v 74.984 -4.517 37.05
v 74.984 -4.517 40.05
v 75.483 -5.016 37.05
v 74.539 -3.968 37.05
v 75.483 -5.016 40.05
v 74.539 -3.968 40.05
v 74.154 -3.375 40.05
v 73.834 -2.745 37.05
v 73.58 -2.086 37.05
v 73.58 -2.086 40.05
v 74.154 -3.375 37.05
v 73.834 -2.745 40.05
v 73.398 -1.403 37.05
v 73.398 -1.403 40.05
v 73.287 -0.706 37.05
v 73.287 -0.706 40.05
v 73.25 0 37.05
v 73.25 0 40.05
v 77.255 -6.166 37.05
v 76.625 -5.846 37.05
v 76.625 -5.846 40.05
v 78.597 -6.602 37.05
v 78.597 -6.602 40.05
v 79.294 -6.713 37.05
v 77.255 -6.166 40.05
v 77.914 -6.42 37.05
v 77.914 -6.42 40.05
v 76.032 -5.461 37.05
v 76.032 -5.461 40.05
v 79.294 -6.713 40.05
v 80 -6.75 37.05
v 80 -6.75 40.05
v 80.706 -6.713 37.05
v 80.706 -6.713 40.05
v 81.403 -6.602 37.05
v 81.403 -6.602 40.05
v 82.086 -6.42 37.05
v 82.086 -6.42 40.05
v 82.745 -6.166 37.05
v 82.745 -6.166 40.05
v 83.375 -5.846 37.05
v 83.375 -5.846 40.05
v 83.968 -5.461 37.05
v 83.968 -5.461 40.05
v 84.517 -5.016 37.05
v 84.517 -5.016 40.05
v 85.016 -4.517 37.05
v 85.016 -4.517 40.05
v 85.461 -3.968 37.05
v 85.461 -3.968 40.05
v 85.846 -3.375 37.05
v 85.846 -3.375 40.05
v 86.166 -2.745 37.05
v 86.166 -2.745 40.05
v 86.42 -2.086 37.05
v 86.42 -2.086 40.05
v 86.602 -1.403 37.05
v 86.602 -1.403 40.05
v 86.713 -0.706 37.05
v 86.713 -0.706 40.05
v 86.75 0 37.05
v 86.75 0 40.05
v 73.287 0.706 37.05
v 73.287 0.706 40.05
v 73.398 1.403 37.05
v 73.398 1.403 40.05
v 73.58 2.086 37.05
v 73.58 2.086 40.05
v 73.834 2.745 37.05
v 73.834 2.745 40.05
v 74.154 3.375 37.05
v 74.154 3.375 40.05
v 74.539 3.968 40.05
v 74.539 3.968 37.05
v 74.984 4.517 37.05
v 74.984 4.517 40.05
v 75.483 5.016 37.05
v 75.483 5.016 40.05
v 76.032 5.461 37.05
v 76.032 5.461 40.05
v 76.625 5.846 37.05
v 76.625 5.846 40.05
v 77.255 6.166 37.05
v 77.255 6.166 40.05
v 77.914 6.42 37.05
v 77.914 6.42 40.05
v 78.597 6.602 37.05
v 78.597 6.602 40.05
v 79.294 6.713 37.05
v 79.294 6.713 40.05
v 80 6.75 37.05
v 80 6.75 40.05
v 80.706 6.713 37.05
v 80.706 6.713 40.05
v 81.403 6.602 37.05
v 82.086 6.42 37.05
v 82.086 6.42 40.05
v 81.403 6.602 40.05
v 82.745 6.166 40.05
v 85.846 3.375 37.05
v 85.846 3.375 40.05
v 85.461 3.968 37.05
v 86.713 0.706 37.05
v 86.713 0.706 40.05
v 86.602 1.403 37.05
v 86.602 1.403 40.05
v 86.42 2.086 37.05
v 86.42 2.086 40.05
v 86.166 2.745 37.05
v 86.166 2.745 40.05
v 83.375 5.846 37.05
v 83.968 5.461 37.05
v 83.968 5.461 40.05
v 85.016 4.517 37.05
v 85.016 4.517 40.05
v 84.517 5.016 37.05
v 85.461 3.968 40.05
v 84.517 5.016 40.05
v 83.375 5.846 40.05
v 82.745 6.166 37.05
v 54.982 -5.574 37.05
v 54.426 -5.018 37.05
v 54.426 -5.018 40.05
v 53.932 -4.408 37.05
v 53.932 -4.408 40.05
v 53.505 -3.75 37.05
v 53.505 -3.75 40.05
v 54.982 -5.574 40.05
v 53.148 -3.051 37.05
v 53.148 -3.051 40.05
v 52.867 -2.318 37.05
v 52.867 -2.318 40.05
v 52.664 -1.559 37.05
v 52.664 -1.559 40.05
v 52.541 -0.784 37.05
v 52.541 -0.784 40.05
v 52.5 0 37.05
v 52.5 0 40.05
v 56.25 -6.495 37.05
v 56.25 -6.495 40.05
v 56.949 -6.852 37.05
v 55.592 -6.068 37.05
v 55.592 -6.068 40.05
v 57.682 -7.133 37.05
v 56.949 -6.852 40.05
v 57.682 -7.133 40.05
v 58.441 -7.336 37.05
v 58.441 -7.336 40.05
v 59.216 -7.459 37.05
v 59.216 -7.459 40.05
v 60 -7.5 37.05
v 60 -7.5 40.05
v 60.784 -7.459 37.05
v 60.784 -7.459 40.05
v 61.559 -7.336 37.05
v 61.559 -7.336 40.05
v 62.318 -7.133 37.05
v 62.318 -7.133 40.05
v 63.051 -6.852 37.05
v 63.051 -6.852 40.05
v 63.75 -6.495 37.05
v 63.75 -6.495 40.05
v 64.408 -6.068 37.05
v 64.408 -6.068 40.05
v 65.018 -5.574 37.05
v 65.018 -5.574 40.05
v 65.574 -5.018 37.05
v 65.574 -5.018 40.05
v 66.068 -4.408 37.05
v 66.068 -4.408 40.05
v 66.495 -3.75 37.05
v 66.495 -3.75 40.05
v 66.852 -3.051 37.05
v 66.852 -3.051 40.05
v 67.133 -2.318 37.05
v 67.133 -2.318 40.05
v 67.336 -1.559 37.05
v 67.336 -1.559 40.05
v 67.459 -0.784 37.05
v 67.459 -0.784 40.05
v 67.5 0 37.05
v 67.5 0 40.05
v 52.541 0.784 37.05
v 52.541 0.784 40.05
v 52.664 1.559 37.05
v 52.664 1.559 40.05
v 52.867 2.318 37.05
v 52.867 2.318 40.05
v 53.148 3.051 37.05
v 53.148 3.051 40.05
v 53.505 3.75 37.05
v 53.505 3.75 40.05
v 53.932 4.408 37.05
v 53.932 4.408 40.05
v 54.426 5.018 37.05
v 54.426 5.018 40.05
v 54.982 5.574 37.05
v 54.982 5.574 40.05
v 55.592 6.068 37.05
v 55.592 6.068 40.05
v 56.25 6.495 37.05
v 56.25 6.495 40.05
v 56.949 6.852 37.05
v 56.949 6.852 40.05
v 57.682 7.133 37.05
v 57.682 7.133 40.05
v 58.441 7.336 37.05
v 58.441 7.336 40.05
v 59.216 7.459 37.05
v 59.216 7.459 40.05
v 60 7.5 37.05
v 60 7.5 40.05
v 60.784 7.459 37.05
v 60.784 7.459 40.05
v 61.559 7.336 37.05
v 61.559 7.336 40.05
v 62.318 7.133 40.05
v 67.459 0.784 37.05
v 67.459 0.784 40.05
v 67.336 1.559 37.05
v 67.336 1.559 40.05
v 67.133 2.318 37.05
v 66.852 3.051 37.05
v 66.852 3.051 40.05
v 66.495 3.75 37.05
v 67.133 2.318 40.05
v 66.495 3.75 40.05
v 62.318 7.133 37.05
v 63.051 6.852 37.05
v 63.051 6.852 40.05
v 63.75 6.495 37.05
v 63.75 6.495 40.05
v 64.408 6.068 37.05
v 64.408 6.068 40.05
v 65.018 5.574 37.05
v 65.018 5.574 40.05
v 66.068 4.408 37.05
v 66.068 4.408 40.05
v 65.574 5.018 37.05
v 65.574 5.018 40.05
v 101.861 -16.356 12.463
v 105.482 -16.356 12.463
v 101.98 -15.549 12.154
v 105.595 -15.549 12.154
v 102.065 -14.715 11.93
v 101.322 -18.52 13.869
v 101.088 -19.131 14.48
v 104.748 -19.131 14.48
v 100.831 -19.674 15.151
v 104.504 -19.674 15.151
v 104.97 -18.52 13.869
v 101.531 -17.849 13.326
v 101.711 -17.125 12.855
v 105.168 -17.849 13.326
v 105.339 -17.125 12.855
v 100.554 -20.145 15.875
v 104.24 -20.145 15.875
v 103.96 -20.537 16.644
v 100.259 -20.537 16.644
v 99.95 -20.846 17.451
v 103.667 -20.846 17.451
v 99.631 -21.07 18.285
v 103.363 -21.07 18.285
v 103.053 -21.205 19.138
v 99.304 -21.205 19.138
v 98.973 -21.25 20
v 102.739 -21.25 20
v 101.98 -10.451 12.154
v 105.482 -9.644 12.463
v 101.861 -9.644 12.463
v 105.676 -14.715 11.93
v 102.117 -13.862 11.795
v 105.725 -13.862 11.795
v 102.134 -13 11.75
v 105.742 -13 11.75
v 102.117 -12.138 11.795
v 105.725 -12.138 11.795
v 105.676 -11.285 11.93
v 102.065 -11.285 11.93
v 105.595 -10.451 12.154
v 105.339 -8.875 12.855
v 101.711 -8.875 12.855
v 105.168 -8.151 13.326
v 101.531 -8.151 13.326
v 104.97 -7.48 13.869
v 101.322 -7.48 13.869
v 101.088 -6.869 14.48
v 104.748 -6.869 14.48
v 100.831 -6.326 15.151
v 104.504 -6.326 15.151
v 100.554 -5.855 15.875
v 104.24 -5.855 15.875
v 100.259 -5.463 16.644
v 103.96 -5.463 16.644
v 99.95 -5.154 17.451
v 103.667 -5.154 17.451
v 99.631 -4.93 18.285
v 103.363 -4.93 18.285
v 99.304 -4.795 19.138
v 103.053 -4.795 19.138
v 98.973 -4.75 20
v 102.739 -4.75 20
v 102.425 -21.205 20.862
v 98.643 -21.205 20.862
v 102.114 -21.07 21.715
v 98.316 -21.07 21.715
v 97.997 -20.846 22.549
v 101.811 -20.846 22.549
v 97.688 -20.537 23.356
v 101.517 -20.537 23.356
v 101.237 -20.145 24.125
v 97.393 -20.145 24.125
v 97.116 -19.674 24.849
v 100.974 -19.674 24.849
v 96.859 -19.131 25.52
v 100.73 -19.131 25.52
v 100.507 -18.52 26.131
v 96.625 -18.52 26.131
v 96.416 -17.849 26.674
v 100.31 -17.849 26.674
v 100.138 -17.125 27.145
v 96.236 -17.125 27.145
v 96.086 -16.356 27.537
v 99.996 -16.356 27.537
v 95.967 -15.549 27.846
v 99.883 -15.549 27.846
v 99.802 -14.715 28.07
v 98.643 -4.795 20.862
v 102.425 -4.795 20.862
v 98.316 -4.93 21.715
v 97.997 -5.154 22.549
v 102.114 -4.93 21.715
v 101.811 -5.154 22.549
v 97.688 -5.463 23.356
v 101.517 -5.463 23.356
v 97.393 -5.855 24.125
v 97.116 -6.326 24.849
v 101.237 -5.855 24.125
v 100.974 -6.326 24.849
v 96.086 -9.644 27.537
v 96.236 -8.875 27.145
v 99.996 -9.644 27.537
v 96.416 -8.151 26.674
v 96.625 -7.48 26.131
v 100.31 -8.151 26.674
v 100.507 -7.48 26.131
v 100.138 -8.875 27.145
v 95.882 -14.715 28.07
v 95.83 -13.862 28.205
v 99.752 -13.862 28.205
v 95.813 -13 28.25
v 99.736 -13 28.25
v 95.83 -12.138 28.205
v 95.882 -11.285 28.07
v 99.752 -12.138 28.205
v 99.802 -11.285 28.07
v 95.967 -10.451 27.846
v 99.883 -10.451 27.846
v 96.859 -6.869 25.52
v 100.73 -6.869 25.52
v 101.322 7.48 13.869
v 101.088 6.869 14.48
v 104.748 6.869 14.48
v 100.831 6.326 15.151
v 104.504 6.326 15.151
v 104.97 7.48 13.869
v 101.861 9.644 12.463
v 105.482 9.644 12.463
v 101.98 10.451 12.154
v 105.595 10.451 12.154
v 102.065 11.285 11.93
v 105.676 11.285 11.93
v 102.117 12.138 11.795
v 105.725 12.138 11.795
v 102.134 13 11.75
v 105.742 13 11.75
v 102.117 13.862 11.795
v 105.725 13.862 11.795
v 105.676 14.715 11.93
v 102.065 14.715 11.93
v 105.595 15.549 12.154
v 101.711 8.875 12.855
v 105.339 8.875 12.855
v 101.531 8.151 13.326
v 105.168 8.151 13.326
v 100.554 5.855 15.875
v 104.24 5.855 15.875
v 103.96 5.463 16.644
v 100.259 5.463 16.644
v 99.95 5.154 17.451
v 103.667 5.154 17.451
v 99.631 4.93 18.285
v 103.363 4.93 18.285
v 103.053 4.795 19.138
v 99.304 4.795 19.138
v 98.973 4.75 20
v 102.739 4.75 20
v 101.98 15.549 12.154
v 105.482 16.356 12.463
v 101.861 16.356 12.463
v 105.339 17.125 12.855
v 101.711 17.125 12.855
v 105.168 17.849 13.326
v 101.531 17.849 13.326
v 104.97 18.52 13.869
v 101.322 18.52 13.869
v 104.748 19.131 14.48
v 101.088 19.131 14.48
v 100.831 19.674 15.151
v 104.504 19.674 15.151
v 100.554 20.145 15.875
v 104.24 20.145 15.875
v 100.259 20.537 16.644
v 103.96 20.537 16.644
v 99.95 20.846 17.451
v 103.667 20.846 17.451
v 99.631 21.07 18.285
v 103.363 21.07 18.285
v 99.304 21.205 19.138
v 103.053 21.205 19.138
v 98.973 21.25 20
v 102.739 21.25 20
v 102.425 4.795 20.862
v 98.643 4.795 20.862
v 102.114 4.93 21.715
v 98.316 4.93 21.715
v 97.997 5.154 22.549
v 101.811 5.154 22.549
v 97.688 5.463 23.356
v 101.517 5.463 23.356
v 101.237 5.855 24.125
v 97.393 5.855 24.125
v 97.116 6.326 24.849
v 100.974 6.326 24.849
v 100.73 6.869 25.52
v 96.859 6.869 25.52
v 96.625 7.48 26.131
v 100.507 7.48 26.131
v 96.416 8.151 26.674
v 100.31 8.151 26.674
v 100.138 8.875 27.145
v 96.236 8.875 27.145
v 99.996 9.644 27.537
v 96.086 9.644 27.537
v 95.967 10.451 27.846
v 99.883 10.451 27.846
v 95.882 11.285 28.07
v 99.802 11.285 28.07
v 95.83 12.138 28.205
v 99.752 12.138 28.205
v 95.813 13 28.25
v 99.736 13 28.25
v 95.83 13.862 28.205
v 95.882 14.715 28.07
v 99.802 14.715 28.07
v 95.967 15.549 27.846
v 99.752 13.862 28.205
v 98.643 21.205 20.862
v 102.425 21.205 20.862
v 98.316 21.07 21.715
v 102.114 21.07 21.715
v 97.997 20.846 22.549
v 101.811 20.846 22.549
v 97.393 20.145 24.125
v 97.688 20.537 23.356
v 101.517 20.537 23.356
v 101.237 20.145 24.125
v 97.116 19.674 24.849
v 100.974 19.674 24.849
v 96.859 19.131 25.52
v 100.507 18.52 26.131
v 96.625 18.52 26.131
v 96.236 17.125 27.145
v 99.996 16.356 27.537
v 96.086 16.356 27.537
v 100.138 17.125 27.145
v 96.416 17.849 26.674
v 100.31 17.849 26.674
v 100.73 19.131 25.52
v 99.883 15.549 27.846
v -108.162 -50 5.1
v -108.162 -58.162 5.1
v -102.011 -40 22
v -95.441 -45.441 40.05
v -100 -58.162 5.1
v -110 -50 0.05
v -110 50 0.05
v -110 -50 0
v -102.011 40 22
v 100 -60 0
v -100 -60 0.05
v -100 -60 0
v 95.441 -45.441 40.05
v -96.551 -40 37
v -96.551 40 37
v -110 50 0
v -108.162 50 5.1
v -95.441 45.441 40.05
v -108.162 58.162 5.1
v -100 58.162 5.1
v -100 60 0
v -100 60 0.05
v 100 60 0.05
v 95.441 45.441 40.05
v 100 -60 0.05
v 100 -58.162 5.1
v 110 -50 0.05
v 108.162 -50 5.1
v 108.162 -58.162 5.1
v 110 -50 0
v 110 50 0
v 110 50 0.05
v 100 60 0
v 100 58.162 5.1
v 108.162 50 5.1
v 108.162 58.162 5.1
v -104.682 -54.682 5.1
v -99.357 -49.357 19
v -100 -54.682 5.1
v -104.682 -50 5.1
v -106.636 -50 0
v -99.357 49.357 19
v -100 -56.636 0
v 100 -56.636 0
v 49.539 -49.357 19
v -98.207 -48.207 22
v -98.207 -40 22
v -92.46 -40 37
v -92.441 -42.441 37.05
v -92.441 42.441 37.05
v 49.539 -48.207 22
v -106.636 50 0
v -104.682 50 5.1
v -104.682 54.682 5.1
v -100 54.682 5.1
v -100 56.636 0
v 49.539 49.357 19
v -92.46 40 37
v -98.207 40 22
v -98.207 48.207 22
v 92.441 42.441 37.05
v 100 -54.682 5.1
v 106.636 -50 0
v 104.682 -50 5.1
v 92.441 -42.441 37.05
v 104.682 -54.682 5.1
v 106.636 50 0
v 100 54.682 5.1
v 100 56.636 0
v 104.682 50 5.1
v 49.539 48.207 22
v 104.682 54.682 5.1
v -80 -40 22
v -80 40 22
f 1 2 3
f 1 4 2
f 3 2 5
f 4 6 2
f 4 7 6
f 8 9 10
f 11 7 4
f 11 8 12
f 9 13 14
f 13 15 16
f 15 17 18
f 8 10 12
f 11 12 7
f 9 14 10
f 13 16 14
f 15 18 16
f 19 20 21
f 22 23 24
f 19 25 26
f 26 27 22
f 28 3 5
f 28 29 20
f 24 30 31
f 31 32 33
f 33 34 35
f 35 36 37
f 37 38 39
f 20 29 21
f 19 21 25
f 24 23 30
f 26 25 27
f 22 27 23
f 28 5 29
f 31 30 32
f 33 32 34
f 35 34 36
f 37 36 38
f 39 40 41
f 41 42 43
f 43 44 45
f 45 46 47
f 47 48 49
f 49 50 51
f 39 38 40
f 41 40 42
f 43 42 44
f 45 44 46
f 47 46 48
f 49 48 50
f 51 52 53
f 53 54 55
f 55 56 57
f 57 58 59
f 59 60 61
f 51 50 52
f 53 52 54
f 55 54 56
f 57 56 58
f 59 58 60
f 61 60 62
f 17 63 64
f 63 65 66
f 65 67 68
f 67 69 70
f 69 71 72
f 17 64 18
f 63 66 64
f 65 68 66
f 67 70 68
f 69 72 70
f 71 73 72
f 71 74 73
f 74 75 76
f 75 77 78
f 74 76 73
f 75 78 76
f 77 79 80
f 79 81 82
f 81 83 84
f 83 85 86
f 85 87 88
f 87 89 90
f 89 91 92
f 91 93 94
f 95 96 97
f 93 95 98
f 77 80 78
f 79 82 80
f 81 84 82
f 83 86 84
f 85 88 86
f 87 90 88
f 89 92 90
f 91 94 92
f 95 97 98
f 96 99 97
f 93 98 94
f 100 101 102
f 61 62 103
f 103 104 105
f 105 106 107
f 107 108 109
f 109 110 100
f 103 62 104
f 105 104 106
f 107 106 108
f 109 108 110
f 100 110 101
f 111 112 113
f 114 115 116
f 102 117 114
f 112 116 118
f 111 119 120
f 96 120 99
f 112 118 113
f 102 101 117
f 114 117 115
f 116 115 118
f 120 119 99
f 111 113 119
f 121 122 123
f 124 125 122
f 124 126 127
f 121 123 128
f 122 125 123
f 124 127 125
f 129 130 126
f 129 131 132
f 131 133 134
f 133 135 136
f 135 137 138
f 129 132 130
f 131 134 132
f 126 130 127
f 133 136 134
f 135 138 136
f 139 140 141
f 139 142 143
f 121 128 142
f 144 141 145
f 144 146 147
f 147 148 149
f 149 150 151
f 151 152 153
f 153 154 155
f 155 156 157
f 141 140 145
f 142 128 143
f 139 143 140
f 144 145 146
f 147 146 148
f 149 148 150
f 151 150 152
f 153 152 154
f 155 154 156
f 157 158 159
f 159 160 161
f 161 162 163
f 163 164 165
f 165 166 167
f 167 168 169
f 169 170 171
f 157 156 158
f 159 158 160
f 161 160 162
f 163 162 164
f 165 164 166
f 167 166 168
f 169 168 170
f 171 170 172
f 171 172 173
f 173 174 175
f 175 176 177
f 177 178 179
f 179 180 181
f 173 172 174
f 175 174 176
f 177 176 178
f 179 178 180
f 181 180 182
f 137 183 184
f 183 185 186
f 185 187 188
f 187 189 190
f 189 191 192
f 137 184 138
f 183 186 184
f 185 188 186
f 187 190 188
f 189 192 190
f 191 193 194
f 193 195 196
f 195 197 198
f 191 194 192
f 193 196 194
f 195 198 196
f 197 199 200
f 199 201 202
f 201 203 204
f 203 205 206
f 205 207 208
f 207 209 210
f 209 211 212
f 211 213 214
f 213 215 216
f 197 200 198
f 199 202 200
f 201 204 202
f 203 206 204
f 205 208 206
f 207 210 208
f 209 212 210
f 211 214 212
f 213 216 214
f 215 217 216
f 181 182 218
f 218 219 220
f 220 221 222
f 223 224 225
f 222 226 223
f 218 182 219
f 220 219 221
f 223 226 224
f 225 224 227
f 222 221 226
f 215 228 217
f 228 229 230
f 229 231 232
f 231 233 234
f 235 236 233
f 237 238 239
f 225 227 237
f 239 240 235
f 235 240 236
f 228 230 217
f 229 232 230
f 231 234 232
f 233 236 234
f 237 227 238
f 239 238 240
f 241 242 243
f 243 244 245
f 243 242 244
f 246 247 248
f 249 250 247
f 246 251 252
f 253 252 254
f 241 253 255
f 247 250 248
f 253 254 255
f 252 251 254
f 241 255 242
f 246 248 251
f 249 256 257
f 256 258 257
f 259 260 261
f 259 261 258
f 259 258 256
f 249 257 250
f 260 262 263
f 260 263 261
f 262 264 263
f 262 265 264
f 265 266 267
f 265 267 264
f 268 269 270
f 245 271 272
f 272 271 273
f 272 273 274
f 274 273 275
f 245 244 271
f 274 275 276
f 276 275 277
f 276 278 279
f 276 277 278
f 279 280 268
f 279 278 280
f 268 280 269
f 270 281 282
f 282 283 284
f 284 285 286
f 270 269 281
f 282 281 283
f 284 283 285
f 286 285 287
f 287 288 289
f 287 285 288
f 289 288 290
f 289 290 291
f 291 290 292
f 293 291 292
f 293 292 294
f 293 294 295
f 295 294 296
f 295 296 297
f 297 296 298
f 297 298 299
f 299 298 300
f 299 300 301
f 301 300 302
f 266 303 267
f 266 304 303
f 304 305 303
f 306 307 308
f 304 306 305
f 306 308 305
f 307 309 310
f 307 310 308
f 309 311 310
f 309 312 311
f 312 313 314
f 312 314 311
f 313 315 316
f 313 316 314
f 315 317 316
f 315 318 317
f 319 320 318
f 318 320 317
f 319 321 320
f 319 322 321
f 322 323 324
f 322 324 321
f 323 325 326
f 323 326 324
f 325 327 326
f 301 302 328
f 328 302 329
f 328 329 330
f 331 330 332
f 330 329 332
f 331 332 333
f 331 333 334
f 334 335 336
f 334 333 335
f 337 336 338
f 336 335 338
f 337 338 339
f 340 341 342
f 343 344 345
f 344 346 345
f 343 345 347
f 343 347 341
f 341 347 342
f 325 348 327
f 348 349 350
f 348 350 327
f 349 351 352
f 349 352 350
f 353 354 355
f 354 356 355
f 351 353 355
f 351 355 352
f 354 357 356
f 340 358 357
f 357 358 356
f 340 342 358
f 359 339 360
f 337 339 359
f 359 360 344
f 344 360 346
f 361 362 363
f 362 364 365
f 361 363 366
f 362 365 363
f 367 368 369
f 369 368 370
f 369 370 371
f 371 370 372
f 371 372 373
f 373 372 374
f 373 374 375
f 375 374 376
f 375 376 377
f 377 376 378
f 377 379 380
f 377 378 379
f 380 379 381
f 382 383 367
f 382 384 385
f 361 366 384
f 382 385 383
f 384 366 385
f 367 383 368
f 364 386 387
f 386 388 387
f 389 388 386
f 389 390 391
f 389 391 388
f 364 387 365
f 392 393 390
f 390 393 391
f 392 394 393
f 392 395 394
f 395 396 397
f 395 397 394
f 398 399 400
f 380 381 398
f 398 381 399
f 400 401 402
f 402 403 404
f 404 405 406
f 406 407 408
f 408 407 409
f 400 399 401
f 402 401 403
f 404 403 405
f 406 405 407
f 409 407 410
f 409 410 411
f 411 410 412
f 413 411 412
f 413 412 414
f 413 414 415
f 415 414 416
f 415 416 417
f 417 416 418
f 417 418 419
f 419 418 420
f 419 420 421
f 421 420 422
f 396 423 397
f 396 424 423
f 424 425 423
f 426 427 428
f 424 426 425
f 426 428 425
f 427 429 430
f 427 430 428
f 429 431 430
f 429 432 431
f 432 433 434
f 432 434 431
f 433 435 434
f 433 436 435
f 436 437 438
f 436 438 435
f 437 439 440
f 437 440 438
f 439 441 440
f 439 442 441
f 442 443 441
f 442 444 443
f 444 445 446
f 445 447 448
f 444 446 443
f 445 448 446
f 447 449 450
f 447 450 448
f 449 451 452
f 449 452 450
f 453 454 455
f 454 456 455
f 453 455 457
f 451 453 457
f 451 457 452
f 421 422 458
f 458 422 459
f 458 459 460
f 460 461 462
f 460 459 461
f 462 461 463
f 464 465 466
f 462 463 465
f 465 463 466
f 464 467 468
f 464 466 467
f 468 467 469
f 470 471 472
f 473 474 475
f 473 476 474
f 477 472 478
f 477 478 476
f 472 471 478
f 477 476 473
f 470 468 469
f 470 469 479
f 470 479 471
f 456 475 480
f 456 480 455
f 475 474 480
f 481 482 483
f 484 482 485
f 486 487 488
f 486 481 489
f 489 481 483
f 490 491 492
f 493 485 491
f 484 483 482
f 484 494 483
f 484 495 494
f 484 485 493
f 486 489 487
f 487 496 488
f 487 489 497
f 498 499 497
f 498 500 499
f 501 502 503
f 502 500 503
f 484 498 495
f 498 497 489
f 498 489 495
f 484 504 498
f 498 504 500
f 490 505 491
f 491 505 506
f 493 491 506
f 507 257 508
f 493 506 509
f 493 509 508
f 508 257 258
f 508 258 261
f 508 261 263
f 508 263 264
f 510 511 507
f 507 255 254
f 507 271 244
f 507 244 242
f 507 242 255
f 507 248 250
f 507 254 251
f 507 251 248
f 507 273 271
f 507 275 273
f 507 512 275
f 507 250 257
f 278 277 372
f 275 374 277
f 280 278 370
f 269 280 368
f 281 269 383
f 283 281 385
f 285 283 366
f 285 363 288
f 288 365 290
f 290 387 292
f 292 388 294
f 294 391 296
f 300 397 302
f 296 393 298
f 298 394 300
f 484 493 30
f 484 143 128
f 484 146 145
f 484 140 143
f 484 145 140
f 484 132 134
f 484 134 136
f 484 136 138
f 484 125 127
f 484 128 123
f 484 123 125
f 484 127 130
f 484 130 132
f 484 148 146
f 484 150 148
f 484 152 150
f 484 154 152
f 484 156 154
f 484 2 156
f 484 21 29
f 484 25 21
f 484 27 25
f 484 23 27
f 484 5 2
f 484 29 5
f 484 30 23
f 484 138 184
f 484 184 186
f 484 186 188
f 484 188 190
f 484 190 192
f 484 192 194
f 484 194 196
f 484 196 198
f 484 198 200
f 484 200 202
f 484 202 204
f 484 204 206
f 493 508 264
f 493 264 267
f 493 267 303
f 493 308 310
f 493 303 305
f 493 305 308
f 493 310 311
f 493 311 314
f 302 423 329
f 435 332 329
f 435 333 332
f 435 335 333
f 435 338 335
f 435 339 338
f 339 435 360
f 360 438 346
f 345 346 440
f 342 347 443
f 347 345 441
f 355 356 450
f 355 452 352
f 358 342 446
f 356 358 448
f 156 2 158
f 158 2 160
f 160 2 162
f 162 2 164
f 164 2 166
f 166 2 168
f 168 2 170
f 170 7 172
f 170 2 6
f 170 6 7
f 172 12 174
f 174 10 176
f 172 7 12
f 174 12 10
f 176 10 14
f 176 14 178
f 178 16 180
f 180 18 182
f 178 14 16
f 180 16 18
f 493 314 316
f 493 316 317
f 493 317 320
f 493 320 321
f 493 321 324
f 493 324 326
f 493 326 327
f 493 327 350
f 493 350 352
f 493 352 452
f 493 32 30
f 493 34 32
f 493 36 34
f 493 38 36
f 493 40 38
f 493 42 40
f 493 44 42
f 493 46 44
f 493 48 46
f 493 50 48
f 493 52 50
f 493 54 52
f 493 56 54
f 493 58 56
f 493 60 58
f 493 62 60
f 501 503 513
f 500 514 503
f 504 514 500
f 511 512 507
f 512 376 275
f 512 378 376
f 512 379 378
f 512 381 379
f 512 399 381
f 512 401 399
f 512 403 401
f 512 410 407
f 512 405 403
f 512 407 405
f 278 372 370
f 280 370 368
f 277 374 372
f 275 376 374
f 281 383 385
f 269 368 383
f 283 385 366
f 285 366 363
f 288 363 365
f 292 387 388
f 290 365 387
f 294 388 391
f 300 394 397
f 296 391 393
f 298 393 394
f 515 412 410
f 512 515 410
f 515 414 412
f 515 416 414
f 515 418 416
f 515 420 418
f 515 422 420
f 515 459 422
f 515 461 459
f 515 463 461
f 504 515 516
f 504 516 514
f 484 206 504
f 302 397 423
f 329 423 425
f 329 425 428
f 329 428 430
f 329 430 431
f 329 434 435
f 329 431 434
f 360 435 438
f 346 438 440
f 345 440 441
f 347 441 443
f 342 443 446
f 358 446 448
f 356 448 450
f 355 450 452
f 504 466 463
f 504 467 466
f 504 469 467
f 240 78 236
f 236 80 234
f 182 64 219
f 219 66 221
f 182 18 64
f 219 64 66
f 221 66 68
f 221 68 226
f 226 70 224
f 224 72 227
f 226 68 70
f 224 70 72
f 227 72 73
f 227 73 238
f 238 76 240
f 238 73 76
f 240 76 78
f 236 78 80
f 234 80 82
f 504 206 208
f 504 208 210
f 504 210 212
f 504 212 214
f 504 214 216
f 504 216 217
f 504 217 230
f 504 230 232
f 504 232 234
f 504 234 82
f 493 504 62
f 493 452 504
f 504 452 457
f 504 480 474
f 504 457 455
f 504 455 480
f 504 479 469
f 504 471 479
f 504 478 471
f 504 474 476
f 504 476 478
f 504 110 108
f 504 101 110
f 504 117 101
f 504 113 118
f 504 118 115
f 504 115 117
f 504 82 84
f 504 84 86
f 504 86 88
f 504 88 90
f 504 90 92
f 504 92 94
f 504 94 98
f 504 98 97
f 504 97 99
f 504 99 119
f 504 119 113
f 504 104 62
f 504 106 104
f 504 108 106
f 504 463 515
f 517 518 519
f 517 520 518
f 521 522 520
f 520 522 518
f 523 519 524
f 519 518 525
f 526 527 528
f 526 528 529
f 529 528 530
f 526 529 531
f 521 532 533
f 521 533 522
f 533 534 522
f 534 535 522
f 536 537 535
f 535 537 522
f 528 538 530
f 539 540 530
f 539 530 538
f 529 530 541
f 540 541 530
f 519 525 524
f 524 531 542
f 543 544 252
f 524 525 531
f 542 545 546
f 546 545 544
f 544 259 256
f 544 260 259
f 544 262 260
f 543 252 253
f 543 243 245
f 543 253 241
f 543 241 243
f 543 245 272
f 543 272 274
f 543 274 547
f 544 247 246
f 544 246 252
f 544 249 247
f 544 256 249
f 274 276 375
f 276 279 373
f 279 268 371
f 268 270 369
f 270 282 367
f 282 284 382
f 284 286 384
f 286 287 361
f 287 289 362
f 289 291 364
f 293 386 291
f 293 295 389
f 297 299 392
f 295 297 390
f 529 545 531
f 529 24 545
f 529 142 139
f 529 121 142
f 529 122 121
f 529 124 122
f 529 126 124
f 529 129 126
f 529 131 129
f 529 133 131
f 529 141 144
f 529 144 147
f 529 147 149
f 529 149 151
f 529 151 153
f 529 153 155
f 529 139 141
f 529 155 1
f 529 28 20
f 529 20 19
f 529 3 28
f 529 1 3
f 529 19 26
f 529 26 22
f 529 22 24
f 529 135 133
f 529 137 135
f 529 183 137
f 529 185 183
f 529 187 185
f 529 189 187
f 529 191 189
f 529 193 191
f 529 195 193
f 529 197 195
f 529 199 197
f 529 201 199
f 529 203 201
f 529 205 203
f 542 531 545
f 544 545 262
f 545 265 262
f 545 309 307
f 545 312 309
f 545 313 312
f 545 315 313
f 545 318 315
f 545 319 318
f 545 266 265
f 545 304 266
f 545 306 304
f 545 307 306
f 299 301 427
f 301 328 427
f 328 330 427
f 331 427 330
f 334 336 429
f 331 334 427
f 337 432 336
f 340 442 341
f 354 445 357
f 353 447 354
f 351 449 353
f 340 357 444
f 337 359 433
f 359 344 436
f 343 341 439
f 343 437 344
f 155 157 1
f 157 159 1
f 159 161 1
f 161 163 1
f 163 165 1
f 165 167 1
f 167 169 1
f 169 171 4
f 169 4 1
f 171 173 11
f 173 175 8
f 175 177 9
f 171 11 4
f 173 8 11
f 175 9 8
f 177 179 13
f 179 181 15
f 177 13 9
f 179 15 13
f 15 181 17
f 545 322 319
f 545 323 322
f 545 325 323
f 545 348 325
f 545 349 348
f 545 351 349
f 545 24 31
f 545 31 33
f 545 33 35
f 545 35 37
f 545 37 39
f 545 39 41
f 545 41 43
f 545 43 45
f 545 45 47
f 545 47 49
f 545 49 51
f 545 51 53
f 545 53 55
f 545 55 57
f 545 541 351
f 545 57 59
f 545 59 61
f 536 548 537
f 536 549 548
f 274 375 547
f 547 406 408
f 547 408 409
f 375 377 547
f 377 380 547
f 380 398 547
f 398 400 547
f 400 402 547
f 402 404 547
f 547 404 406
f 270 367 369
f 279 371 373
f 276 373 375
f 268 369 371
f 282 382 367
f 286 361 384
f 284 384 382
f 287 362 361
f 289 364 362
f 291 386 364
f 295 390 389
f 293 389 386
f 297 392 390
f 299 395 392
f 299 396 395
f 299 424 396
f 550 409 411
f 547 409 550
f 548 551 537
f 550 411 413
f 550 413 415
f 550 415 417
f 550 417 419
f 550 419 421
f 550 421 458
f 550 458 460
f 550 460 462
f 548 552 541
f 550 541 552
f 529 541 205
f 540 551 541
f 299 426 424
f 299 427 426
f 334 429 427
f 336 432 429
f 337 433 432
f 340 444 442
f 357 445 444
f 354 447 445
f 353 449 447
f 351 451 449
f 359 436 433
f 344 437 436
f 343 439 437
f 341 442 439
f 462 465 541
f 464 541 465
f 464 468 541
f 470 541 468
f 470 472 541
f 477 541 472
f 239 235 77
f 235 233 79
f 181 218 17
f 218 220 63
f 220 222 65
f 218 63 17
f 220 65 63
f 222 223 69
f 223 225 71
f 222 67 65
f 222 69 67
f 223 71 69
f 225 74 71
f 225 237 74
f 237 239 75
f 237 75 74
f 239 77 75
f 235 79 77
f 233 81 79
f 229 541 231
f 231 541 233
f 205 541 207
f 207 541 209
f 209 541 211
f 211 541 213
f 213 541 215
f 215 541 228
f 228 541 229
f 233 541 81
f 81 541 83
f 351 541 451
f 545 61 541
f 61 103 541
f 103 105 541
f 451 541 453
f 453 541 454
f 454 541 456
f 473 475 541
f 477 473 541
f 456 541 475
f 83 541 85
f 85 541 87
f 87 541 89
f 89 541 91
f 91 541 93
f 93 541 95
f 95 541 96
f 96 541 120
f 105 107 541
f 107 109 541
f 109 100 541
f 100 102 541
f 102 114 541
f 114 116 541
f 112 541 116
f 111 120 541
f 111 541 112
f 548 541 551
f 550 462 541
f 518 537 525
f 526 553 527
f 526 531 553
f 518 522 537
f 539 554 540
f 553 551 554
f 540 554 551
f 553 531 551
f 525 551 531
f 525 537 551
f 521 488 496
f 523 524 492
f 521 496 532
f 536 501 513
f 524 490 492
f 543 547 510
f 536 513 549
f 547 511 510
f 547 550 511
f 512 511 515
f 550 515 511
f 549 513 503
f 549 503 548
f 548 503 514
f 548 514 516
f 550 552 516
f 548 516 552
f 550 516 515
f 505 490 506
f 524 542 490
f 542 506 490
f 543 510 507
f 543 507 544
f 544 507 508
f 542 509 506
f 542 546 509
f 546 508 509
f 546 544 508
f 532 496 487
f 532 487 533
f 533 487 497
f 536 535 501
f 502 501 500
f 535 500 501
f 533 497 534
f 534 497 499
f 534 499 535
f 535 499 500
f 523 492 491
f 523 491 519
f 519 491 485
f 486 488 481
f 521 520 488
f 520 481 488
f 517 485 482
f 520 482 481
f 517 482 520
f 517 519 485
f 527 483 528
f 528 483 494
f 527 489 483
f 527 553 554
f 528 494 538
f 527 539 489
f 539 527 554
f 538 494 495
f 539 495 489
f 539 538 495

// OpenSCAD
// --- CABIN DIMENSIONS / РАЗМЕРЫ КАБИНЫ ---
cabin_length = 220;          // [мм] Length (front to back) / Длина
cabin_width = 120;           // [мм] Width (side to side) / Ширина
cabin_height = 40;           // [мм] Height / Высота
wall_thickness = 3;          // [мм] Wall thickness / Толщина стенок
taper_angle = 70;            // [градусы] Taper angle (narrowing to top) / Угол сужения кверху

// --- MOUNTING SOCKETS / МОНТАЖНЫЕ ВПАДИНЫ ---
socket_size = 10;            // [мм] Socket size (1x1 cm) / Размер впадины
socket_depth = 5;            // [мм] Socket depth (0.5 cm) / Глубина впадины

// --- BATTERY SHELF / ПОЛКА ДЛЯ БАТАРЕИ ---
shelf_thickness = 3;         // [мм] Shelf thickness / Толщина полки
shelf_distance_from_roof = 3; // [мм] Distance from roof to shelf definition / Отступ
shelf_drop_offset = 15;      // [mm] Extra drop used in your original code / Дополнительное смещение вниз
battery_cable_dia = 15;      // [мм] Battery cable hole / Отверстие для шнура батареи
rear_cutout_width = 80;      // [мм] Rear cutout width / Ширина выреза сзади
rear_cutout_height = 15;     // [мм] Rear cutout height / Высота выреза сзади

// --- DISTANCE SENSOR / ДАТЧИК РАССТОЯНИЯ ---
sensor_hole_dia = 16.5;      // [мм] Sensor hole diameter / Диаметр отверстия датчика
sensor_spacing = 26;         // [мм] Distance between sensor holes / Расстояние между отверстиями
sensor_height = 40;          // [мм] Height from bottom / Высота от низа

// --- ROOF CAMERA / КАМЕРА НА КРЫШЕ ---
camera_hole_dia = 13.5;      // [мм] Camera hole diameter / Диаметр отверстия камеры
camera_cable_dia = 15;       // [мм] Camera cable hole / Отверстие для шнура камеры
camera_position = 30;        // [мм] Distance from front / Расстояние от передней части
cable_offset = 20;           // [мм] Distance behind camera / Расстояние за камерой

// --- QUALITY / КАЧЕСТВО ---
$fn = 60;                    // Circle resolution / Разрешение окружностей

/* =====================================================================
 *                         MODULES / МОДУЛИ
 * =====================================================================
 */

// Main cabin body with 70° taper and CLOSED TOP (ROOF)
module cabin_body() {
    top_reduction = cabin_height / tan(taper_angle);
    top_length = cabin_length - 2 * top_reduction;
    top_width = cabin_width - 2 * top_reduction;
    
    hull() {
        translate([0, 0, 0])
            cube([cabin_length, cabin_width, 0.1], center = true);
        
        translate([0, 0, cabin_height])
            cube([top_length, top_width, 0.1], center = true);
    }
}

// Inner cavity (hollow interior)
module cabin_cavity() {
    top_reduction = cabin_height / tan(taper_angle);
    top_length = cabin_length - 2 * top_reduction - 2 * wall_thickness;
    top_width = cabin_width - 2 * top_reduction - 2 * wall_thickness;
    inner_length = cabin_length - 2 * wall_thickness;
    inner_width = cabin_width - 2 * wall_thickness;
    
    difference (){
    hull() {
        translate([0, 0, -1])
            cube([inner_length, inner_width, 0.1], center = true);
        
        translate([0, 0, cabin_height - wall_thickness])
            cube([top_length, top_width, 0.1], center = true);
    }
    battery_shelf();
    }
}

// Mounting socket
module mounting_socket() {
    translate([0, 0, socket_depth/2]) {
        cube([socket_size, socket_size, socket_depth + 0.2], center = true);
    }
}

// HORIZONTAL SHELF under roof for battery
module battery_shelf() {
    // FIXED: Calculate Z based on the extra drop so dimensions are correct
    actual_z_center = cabin_height - shelf_distance_from_roof - shelf_thickness/2 - shelf_drop_offset;
    
    // FIXED: Calculate width/length based on the ACTUAL height, not the roof height
    // This ensures the shelf touches the tapered walls
    reduction = actual_z_center / tan(taper_angle);
    shelf_length = cabin_length - 2 * reduction - 2 * wall_thickness-50;
    shelf_width = cabin_width - 2 * reduction - 2 * wall_thickness;
    
    translate([-25, 0, actual_z_center]) {
        
            cube([shelf_length, shelf_width, shelf_thickness], center = true);
            
           
        
    }
}

// Rear cutout for battery access
module rear_battery_cutout() {
    // FIXED: Align cutout with the lowered shelf position
    // Shelf Top Z = (cabin_height - shelf_distance_from_roof - shelf_drop_offset)
    shelf_top_z = cabin_height - shelf_distance_from_roof - shelf_drop_offset;
    
    // Position cutout so its bottom is flush with the shelf top
    cutout_z = shelf_top_z + rear_cutout_height/2;
    
    // FIXED: Increased X depth (60mm) and pushed deeper to ensure it cuts the tapered wall
    translate([-cabin_length/2, 0, cutout_z]) {
        cube([60, rear_cutout_width, rear_cutout_height], center = true);
    }
}

// Distance sensor holes
module sensor_holes() {
    extra_length = 30;
    translate([ 100, 0, -cabin_height/2 + sensor_height]) {
        translate([0, -sensor_spacing/2, 0])
            rotate([0, 90, 0])
                cylinder(h = wall_thickness + extra_length, d = sensor_hole_dia, center = true);
        
        translate([0, sensor_spacing/2, 0])
            rotate([0, 90, 0])
                cylinder(h = wall_thickness + extra_length, d = sensor_hole_dia, center = true);
    }
}

// Camera and cable holes
module roof_holes() {
    translate([0, 0, cabin_height]) {
        translate([cabin_length/2 - camera_position, 0, 0])
            cylinder(h = wall_thickness + 10, d = camera_hole_dia, center = true);
        
        translate([cabin_length/2 - camera_position - cable_offset, 0, 0])
            cylinder(h = wall_thickness + 10, d = camera_cable_dia, center = true);
    }
}

/* =====================================================================
 *                    MAIN ASSEMBLY / ОСНОВНАЯ СБОРКА
 * =====================================================================
 */

difference() {
    union() {
        cabin_body();
        battery_shelf();
    }
    
    cabin_cavity();
    
    // Remove bottom
    translate([0, 0, -10])
        cube([cabin_length + 10, cabin_width + 10, 20], center = true);
    
    // Mounting sockets
    translate([cabin_length/2 - socket_size/2, cabin_width/2 - socket_size/2, 0]) mounting_socket();
    translate([cabin_length/2 - socket_size/2, -cabin_width/2 + socket_size/2, 0]) mounting_socket();
    translate([-cabin_length/2 + socket_size/2, cabin_width/2 - socket_size/2, 0]) mounting_socket();
    translate([-cabin_length/2 + socket_size/2, -cabin_width/2 + socket_size/2, 0]) mounting_socket();
    
    sensor_holes();
    roof_holes();
    rear_battery_cutout();
}
